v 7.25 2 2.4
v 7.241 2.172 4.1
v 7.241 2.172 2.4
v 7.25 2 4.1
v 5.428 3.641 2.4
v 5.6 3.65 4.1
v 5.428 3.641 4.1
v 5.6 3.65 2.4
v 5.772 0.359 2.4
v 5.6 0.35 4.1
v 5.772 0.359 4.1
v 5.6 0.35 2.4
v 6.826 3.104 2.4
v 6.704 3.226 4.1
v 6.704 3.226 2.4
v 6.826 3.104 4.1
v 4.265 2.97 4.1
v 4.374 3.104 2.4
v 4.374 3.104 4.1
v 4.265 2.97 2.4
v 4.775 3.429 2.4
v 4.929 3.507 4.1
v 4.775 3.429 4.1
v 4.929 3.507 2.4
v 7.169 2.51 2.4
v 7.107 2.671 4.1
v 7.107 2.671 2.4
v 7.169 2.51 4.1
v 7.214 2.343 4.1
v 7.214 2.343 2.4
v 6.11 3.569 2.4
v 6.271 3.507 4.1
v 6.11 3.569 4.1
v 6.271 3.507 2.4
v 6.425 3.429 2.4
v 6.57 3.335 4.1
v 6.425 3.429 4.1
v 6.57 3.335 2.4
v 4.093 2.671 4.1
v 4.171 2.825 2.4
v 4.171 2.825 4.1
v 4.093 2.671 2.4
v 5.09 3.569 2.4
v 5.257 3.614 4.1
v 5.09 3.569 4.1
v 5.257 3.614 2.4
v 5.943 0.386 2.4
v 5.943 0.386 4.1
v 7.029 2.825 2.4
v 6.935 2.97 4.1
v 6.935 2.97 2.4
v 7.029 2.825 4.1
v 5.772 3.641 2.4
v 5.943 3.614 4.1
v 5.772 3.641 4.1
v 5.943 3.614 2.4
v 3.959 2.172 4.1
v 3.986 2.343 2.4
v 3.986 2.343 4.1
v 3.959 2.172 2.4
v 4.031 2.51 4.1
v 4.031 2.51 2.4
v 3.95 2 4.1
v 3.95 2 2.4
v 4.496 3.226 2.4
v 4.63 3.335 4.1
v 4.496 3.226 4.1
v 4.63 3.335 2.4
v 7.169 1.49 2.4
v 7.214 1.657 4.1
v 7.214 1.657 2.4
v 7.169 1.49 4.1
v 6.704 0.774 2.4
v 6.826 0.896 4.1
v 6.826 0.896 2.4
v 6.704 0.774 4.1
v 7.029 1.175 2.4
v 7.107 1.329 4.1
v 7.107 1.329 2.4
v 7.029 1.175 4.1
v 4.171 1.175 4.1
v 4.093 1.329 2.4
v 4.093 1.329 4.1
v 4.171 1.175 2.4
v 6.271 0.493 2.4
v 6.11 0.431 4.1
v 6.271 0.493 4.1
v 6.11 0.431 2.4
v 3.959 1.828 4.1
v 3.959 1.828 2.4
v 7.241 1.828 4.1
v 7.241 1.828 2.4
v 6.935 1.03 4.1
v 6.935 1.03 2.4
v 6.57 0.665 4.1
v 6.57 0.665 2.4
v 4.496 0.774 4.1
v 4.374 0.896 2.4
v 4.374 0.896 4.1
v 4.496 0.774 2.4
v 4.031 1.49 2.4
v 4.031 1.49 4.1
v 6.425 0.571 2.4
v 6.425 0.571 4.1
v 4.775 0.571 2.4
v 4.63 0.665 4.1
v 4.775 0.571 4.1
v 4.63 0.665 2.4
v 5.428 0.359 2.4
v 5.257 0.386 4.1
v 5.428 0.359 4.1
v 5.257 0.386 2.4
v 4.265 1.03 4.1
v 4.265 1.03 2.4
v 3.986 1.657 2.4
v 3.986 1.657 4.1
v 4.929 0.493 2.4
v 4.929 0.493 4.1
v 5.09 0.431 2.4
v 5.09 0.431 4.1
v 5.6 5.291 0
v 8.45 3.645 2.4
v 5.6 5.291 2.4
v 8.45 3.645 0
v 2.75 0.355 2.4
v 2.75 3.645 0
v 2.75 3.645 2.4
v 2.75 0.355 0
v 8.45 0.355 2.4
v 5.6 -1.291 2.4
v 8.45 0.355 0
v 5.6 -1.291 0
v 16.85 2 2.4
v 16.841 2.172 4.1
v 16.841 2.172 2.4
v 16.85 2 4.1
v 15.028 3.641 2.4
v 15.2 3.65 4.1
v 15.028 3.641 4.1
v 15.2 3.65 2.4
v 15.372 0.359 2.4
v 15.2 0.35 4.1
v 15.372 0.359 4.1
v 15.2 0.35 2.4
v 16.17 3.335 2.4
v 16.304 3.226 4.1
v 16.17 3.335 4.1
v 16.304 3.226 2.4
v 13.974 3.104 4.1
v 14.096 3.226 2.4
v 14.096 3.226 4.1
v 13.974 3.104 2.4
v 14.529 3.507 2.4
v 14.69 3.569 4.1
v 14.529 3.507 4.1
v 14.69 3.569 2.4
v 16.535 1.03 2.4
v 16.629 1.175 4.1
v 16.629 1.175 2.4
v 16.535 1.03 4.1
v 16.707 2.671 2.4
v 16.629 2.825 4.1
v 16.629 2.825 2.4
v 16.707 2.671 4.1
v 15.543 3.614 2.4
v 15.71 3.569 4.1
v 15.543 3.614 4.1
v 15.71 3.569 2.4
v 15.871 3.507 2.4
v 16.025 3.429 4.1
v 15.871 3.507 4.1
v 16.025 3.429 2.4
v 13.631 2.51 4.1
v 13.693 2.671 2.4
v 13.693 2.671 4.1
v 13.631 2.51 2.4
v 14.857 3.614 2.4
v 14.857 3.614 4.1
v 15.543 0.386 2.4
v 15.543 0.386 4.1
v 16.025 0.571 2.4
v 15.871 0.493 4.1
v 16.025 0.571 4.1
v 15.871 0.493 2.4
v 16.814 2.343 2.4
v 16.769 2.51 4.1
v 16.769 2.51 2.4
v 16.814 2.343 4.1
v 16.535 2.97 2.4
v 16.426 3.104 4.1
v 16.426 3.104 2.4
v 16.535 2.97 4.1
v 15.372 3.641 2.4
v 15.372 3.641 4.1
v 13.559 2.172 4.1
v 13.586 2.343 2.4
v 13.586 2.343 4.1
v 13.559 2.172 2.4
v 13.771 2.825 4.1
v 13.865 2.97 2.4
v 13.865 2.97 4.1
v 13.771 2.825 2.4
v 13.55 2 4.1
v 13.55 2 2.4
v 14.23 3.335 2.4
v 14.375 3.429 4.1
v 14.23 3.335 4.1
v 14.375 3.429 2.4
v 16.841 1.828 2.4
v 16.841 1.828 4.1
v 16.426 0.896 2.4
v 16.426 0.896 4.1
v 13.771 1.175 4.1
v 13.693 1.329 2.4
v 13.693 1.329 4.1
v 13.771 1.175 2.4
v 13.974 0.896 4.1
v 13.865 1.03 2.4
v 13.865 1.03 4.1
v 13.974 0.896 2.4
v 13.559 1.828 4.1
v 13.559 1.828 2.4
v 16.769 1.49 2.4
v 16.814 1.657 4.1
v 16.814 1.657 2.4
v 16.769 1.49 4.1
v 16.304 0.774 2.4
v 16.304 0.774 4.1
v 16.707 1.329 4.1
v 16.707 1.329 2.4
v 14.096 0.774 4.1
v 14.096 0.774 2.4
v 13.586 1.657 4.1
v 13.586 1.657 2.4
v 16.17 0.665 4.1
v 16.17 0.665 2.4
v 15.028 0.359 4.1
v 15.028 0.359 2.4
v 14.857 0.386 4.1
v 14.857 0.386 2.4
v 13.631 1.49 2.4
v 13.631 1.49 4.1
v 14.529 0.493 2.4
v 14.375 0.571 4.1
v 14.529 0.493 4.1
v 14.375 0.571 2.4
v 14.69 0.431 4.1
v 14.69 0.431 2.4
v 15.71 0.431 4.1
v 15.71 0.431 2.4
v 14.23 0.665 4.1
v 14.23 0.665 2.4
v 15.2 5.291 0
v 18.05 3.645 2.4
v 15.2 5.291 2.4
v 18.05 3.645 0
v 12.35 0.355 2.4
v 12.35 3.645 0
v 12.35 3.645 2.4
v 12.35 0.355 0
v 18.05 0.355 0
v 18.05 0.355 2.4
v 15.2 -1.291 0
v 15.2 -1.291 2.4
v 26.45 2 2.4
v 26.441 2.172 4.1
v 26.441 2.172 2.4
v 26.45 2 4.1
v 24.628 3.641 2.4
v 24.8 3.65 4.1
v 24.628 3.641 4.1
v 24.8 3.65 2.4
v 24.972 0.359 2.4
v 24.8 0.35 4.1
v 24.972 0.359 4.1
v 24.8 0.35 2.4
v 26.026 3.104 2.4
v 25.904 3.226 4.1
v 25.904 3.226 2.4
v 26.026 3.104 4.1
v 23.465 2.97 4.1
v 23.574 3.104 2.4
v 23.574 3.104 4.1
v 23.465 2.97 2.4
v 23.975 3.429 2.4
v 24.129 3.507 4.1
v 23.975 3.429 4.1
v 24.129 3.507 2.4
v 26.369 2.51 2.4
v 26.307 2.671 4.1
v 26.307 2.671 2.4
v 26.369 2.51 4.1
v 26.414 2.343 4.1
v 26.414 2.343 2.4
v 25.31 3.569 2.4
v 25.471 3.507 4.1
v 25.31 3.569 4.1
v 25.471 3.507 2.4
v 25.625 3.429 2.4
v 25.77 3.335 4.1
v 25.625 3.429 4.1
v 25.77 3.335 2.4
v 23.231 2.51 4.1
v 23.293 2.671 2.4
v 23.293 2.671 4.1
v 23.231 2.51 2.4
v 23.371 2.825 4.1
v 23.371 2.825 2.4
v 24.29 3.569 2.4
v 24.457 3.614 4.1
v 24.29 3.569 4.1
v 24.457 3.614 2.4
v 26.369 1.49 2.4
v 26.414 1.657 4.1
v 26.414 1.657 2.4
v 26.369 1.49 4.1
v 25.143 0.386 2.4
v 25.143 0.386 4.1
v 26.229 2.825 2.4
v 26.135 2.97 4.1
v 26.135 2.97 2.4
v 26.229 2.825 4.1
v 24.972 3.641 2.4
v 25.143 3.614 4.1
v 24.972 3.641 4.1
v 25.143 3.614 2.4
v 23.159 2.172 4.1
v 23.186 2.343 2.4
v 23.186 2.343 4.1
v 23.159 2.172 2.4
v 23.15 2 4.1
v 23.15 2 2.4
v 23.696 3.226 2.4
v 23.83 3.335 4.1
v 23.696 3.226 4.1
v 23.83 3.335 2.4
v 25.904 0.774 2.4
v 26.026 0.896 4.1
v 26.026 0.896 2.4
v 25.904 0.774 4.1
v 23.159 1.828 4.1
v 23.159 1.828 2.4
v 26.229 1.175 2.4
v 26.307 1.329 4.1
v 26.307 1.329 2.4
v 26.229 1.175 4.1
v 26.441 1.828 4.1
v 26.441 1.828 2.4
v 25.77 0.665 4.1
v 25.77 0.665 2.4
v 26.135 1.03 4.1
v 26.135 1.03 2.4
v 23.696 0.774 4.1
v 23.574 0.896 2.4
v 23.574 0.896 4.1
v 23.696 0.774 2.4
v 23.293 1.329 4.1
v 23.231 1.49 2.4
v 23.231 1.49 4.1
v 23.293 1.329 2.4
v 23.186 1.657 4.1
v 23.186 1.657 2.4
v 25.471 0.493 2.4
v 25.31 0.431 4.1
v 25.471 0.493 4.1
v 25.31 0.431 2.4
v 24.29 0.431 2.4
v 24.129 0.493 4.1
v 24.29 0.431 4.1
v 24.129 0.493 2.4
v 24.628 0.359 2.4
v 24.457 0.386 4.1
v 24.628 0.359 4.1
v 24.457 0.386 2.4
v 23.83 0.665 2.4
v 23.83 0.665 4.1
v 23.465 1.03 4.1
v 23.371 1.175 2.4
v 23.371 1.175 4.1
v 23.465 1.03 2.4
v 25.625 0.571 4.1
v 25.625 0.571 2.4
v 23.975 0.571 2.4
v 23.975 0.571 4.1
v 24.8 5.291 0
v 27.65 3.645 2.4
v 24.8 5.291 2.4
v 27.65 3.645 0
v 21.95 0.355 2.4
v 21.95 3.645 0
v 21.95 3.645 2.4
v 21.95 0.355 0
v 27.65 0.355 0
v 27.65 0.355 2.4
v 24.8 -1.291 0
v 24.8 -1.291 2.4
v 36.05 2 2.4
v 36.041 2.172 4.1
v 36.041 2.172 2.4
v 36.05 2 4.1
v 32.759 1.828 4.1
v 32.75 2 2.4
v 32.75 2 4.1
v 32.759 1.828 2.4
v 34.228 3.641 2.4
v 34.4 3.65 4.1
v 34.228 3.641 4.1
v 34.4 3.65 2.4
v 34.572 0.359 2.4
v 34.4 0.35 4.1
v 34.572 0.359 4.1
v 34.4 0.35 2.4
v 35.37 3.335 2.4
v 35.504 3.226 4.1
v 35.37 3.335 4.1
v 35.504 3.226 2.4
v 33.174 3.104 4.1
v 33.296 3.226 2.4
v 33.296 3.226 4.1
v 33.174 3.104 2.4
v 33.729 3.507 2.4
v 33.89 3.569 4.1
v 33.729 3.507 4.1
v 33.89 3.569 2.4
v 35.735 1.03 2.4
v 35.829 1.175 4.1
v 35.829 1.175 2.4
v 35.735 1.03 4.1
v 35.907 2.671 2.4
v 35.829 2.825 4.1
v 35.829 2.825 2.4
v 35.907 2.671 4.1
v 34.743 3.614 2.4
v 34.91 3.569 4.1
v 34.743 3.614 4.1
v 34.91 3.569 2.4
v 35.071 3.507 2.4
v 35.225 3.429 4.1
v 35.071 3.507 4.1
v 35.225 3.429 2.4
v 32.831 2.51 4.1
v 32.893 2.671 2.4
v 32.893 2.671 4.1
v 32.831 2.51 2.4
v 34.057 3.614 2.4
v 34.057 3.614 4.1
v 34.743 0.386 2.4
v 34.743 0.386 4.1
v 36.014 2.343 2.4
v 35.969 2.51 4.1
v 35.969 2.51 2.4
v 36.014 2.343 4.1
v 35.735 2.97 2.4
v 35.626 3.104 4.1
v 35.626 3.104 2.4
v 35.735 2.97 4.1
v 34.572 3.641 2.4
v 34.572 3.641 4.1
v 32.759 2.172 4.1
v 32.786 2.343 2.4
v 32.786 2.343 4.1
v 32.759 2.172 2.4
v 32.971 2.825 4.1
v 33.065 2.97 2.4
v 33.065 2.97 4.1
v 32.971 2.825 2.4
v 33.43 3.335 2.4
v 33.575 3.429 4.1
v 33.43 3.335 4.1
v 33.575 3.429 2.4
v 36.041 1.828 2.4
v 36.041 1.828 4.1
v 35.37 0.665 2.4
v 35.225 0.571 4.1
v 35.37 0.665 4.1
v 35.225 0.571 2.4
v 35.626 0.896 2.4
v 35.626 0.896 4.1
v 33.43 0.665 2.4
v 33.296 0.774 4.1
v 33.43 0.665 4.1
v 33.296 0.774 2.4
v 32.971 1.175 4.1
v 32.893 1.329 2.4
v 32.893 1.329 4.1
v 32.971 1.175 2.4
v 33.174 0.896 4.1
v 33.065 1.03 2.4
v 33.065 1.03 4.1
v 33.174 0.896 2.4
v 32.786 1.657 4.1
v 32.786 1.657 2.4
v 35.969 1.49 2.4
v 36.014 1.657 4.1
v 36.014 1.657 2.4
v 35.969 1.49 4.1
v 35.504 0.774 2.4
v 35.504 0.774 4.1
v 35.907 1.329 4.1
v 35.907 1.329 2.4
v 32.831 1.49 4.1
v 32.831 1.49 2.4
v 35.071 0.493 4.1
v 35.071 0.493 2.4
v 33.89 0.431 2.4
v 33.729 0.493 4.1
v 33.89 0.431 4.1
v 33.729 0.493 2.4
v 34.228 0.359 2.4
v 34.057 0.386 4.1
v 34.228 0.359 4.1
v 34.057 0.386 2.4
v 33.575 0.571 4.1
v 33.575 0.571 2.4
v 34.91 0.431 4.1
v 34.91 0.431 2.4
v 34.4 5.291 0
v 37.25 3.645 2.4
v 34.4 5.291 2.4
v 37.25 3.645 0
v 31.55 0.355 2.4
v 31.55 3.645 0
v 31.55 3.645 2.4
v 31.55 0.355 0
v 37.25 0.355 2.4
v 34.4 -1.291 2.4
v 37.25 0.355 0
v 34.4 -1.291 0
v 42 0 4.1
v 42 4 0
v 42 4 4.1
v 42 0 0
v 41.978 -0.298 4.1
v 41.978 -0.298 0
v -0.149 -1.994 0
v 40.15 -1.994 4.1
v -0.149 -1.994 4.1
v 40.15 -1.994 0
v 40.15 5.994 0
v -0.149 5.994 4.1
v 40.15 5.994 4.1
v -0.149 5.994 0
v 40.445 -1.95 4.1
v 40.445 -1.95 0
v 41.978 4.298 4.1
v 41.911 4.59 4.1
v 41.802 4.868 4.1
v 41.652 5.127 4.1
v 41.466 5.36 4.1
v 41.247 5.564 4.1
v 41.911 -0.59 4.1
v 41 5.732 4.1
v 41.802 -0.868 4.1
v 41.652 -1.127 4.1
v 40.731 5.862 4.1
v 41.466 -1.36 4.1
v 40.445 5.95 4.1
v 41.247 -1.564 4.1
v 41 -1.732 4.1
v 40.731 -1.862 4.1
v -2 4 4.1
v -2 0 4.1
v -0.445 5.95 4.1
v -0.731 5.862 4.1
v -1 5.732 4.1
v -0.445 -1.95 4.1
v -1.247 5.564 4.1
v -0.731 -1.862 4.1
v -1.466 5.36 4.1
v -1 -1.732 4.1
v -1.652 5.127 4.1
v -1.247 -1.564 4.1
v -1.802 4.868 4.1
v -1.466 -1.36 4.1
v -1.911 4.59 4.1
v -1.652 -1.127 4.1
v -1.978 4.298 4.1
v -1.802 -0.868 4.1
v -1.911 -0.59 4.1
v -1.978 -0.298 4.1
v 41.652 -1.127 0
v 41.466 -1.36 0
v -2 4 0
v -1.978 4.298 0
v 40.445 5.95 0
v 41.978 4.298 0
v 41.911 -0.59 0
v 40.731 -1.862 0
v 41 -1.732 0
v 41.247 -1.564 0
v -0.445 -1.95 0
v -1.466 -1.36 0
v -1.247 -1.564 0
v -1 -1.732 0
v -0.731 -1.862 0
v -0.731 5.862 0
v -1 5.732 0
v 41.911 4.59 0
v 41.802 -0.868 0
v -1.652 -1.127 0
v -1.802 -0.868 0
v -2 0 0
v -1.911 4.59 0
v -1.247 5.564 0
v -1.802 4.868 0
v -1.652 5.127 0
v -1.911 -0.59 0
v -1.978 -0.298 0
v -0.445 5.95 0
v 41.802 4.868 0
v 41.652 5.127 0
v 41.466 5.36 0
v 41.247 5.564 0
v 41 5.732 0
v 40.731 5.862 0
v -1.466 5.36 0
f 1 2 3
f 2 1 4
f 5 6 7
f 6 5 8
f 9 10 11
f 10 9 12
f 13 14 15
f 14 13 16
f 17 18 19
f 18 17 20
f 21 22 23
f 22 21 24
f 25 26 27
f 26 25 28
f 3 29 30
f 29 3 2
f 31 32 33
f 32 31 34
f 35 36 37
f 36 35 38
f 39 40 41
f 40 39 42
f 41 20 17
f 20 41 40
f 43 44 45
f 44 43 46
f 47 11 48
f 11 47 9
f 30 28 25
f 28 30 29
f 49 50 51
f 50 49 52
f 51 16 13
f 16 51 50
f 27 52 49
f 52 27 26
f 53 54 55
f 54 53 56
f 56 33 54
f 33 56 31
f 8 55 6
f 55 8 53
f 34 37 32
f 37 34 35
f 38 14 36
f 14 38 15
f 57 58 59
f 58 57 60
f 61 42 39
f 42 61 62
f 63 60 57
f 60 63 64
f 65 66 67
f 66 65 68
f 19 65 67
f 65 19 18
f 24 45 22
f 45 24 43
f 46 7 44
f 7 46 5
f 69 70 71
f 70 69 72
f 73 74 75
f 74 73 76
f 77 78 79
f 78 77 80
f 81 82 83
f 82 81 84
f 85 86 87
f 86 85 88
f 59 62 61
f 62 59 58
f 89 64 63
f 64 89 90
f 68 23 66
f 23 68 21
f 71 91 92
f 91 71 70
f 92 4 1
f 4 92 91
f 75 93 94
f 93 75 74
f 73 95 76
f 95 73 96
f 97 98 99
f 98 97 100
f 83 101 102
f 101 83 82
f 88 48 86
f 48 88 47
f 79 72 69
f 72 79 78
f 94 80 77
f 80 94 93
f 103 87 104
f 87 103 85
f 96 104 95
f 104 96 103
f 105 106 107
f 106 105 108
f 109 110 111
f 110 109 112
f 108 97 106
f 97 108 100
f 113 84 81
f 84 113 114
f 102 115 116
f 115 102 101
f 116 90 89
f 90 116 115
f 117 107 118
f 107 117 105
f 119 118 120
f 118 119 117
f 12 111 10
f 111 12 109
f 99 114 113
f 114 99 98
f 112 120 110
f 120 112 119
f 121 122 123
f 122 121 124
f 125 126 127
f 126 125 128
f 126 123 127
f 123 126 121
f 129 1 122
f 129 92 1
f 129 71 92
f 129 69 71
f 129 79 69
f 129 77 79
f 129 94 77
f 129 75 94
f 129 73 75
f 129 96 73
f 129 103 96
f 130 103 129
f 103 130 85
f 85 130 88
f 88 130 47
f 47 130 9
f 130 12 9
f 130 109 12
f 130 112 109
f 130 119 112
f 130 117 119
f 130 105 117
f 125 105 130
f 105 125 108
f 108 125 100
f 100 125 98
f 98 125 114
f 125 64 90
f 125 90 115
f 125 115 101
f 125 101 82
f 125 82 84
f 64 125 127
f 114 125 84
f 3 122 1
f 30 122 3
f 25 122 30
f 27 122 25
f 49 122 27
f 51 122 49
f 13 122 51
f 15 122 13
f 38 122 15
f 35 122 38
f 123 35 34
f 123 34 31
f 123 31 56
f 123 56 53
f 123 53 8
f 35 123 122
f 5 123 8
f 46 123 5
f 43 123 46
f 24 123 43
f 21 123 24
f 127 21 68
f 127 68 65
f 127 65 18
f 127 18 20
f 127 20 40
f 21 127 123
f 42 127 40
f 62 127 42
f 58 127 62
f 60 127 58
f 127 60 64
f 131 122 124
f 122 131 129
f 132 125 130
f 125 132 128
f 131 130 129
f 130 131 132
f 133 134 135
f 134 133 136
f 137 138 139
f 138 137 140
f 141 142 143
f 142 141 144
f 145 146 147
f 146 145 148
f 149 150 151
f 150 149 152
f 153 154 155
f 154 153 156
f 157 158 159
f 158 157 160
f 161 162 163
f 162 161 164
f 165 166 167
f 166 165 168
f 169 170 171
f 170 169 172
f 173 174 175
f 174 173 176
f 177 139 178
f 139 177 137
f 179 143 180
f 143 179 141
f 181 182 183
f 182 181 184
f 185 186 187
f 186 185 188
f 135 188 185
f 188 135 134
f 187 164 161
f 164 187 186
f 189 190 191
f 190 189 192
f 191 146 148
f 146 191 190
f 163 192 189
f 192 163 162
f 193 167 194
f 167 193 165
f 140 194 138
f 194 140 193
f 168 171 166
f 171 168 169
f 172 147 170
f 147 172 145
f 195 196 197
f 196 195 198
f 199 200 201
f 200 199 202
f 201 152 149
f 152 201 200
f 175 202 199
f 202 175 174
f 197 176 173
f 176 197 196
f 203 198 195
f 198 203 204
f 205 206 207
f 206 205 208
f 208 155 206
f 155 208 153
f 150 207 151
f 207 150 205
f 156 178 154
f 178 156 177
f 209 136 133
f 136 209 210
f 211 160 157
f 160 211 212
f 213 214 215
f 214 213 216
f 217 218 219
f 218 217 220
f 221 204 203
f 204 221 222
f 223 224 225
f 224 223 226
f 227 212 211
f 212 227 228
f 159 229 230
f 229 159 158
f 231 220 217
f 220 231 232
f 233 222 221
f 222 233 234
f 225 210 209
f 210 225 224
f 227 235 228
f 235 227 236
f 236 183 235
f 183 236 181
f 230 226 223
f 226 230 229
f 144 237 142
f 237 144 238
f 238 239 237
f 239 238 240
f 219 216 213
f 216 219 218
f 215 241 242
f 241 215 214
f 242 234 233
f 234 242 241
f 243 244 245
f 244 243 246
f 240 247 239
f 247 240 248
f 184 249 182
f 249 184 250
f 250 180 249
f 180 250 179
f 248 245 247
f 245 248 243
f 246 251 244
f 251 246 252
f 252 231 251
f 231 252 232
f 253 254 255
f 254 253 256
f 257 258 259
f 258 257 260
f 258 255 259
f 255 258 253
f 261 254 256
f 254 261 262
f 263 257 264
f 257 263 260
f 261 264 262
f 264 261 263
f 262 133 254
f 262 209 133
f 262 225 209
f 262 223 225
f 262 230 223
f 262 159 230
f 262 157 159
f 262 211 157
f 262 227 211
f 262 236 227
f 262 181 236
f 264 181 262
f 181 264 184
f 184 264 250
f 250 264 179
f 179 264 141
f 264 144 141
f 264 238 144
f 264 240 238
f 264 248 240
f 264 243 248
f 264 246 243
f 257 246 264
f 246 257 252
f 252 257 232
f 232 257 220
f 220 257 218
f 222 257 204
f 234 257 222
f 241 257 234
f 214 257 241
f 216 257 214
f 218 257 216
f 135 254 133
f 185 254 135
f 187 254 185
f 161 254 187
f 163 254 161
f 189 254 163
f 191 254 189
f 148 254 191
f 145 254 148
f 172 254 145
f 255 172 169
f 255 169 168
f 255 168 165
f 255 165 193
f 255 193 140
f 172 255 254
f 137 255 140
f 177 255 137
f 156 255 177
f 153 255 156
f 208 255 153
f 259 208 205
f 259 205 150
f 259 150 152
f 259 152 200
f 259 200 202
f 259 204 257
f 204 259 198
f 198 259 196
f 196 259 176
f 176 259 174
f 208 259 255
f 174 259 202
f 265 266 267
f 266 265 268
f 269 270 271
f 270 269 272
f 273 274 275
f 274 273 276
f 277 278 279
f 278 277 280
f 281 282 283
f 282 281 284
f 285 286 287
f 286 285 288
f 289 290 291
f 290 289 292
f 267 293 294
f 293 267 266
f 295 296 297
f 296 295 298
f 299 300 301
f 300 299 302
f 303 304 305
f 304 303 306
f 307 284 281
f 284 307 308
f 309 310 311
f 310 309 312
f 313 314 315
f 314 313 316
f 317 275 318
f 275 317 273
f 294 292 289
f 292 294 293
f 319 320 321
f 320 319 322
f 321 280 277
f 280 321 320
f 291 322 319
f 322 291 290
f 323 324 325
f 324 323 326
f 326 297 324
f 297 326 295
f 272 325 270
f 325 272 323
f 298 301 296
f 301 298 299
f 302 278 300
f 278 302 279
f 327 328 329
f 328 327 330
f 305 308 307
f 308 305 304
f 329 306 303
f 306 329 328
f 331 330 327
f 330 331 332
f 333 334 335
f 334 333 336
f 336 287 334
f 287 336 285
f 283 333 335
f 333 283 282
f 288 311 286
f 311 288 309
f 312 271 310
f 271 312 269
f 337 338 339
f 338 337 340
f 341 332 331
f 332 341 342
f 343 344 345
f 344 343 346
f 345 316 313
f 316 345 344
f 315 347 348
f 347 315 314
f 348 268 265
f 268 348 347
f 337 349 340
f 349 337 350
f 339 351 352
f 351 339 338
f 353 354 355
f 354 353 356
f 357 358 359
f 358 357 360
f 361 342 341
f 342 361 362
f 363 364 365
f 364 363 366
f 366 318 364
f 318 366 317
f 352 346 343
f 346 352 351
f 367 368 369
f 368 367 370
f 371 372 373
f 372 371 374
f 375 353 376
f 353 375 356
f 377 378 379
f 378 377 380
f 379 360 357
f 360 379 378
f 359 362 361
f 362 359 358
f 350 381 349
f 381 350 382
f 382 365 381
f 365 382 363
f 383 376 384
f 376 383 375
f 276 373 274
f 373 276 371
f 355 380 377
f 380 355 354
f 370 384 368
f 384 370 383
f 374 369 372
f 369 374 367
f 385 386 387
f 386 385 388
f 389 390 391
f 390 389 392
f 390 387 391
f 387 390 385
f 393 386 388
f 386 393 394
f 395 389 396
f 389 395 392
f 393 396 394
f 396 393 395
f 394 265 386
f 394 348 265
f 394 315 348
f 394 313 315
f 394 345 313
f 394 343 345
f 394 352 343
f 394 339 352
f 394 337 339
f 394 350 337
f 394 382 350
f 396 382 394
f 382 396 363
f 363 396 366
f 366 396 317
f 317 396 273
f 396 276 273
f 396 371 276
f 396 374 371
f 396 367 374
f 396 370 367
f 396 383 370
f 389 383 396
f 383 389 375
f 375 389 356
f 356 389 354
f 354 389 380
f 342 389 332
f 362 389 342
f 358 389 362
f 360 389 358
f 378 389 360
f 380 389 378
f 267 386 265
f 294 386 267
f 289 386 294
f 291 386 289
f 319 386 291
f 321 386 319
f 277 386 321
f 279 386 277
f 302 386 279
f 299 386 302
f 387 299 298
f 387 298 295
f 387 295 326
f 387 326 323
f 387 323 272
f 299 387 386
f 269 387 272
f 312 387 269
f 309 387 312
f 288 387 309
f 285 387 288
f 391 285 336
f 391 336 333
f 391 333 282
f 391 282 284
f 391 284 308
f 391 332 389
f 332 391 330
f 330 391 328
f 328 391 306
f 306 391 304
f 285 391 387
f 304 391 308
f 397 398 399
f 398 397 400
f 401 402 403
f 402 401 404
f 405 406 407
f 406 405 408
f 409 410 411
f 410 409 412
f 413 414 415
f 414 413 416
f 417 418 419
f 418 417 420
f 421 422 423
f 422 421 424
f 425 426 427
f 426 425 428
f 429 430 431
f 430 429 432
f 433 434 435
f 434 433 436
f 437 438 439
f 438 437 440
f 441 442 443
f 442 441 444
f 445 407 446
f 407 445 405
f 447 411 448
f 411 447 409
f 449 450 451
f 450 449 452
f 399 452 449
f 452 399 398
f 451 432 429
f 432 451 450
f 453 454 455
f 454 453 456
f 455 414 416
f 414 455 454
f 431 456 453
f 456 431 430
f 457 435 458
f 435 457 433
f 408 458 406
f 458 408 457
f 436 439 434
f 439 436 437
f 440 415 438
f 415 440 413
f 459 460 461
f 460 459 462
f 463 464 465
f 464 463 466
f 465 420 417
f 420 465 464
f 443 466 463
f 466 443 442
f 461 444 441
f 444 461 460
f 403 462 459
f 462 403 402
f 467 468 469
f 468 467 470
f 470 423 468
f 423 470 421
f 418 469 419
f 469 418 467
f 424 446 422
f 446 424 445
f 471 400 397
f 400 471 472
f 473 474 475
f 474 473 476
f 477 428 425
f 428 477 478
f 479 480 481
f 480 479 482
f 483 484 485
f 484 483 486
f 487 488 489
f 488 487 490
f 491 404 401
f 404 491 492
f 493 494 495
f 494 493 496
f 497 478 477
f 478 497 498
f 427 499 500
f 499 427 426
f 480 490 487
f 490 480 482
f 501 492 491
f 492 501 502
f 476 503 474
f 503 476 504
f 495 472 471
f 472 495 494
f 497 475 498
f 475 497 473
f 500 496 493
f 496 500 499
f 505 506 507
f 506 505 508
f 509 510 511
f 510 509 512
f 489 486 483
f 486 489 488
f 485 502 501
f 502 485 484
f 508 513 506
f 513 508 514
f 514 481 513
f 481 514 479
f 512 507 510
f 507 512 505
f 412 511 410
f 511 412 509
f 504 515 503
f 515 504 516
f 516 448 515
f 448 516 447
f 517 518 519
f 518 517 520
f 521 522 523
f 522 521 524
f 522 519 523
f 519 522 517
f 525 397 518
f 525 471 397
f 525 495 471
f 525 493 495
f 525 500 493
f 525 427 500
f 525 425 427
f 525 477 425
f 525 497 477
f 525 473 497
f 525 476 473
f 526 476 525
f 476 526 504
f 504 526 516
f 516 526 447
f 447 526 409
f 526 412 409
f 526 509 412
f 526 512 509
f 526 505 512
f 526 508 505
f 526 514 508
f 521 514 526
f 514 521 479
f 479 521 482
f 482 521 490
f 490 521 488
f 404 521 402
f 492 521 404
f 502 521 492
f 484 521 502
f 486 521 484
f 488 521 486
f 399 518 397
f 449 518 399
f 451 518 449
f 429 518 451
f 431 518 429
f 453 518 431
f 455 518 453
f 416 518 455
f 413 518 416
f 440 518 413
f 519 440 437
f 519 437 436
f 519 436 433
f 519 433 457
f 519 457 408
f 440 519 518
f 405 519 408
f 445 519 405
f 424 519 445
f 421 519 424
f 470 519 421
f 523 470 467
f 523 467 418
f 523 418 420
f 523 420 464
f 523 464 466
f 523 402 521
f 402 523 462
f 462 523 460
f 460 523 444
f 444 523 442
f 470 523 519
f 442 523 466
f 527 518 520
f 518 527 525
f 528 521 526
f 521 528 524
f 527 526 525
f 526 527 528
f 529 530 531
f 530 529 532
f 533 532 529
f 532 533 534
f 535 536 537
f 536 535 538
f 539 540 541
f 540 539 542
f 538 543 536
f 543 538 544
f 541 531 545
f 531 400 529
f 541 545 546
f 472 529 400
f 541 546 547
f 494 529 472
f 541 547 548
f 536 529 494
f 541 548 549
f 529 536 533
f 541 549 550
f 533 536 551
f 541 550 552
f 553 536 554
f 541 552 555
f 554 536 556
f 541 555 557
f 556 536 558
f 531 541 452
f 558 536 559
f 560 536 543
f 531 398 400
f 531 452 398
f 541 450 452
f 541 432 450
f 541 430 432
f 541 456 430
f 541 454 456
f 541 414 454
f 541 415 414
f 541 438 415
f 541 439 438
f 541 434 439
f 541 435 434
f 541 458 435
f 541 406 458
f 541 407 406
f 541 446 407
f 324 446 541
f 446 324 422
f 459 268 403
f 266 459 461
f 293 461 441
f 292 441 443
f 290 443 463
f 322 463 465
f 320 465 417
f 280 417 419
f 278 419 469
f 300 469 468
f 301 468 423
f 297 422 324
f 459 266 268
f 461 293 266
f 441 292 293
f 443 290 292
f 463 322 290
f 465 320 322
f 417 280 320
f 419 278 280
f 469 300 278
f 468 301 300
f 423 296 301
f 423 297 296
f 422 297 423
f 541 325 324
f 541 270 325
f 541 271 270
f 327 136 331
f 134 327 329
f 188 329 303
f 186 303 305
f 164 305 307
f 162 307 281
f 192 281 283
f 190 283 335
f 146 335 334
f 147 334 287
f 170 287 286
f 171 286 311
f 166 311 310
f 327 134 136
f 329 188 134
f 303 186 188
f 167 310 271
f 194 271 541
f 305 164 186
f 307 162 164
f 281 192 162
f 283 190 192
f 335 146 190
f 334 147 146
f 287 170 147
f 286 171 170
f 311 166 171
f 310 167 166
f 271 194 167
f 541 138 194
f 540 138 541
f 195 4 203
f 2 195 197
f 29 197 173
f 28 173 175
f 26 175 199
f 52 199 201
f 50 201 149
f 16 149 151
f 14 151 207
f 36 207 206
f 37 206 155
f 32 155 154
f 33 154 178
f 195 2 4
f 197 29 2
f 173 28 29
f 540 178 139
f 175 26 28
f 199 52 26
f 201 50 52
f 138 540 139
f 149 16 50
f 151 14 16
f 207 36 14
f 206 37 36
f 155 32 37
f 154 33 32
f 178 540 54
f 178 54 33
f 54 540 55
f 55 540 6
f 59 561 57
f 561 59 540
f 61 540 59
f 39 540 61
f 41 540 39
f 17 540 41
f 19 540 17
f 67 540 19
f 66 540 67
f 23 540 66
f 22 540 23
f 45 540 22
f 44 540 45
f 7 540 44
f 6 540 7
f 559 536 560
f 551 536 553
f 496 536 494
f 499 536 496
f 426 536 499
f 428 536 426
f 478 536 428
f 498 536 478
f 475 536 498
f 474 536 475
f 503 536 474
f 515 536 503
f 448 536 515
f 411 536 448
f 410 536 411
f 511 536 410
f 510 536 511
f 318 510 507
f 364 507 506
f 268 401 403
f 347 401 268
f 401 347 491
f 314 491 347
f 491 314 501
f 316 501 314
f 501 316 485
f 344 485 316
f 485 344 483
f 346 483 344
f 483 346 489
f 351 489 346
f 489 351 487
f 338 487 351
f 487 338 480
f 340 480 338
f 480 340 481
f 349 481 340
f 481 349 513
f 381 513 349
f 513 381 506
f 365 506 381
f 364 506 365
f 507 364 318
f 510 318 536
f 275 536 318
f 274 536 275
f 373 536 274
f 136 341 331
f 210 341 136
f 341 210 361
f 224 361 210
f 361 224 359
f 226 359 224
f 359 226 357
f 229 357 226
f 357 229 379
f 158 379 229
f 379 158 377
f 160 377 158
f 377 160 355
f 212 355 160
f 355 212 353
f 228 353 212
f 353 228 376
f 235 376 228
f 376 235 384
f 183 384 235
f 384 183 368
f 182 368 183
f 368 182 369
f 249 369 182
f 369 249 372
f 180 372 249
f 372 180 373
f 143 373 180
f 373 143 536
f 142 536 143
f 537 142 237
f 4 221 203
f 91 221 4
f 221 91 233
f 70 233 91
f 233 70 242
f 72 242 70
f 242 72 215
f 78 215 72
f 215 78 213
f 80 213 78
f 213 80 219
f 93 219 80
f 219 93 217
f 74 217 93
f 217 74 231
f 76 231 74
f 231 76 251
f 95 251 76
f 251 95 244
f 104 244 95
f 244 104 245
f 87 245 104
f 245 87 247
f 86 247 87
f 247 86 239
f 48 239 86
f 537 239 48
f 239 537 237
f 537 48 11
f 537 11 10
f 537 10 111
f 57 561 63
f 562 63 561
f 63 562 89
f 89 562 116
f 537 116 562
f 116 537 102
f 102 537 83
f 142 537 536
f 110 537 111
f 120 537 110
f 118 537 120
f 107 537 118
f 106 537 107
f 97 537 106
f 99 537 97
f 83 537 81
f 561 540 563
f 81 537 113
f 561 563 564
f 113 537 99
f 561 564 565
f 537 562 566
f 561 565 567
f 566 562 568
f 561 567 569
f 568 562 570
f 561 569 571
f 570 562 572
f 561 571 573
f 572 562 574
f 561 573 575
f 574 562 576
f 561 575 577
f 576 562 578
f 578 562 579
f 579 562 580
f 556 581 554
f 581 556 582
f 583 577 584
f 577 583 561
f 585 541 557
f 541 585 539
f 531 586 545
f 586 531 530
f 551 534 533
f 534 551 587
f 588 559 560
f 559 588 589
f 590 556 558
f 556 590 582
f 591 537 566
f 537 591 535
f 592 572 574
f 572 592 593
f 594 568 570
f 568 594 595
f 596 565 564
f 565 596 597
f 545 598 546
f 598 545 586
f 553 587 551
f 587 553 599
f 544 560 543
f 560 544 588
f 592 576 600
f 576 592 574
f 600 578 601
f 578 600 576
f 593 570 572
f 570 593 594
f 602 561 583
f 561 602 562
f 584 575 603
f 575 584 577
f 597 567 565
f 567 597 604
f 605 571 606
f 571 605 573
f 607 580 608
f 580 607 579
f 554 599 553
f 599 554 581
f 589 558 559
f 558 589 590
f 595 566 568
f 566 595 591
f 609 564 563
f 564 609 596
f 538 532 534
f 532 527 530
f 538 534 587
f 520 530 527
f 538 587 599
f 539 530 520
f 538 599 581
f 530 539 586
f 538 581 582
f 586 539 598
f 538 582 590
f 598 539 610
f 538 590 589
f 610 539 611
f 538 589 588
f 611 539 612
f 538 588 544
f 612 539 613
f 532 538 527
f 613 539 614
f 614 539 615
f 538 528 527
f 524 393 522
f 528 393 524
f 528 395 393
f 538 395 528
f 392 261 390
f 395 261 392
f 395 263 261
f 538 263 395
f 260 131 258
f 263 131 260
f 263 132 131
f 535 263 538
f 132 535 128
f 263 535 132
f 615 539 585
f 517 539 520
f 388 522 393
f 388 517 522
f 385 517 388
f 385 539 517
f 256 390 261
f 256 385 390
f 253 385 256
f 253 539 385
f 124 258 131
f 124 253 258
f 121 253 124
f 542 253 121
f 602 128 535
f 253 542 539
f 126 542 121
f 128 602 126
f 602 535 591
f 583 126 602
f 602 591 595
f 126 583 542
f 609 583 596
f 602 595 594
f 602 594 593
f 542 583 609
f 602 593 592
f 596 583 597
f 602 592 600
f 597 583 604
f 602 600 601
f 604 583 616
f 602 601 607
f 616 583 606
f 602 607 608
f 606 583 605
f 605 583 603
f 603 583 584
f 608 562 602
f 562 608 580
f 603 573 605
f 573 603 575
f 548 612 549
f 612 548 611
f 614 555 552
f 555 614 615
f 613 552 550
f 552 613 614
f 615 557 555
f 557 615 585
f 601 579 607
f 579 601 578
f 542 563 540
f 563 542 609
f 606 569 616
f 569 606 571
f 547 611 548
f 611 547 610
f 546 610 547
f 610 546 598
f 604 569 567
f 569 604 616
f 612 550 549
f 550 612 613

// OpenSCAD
a=40;
b=4;
c=4;
g=(a+2*c)/5;
f6 =1/cos(180/6);
difference(){
    minkowski(){
        cube([a,b,c]);
        cylinder(d=c,$fn=42,h=0.1);
        //scale([2,2,1])sphere(d=c/2,$fn=24,h=0.1);
    }
    for(i=[1:4]){
        translate([i*g-c,b/2,-0.1])cylinder($fn=60,d=3.3,h=30);
        translate([i*g-c,b/2,-0.1])rotate(30)cylinder($fn=6,d=5.7*f6,h=2.5);
    }
}
